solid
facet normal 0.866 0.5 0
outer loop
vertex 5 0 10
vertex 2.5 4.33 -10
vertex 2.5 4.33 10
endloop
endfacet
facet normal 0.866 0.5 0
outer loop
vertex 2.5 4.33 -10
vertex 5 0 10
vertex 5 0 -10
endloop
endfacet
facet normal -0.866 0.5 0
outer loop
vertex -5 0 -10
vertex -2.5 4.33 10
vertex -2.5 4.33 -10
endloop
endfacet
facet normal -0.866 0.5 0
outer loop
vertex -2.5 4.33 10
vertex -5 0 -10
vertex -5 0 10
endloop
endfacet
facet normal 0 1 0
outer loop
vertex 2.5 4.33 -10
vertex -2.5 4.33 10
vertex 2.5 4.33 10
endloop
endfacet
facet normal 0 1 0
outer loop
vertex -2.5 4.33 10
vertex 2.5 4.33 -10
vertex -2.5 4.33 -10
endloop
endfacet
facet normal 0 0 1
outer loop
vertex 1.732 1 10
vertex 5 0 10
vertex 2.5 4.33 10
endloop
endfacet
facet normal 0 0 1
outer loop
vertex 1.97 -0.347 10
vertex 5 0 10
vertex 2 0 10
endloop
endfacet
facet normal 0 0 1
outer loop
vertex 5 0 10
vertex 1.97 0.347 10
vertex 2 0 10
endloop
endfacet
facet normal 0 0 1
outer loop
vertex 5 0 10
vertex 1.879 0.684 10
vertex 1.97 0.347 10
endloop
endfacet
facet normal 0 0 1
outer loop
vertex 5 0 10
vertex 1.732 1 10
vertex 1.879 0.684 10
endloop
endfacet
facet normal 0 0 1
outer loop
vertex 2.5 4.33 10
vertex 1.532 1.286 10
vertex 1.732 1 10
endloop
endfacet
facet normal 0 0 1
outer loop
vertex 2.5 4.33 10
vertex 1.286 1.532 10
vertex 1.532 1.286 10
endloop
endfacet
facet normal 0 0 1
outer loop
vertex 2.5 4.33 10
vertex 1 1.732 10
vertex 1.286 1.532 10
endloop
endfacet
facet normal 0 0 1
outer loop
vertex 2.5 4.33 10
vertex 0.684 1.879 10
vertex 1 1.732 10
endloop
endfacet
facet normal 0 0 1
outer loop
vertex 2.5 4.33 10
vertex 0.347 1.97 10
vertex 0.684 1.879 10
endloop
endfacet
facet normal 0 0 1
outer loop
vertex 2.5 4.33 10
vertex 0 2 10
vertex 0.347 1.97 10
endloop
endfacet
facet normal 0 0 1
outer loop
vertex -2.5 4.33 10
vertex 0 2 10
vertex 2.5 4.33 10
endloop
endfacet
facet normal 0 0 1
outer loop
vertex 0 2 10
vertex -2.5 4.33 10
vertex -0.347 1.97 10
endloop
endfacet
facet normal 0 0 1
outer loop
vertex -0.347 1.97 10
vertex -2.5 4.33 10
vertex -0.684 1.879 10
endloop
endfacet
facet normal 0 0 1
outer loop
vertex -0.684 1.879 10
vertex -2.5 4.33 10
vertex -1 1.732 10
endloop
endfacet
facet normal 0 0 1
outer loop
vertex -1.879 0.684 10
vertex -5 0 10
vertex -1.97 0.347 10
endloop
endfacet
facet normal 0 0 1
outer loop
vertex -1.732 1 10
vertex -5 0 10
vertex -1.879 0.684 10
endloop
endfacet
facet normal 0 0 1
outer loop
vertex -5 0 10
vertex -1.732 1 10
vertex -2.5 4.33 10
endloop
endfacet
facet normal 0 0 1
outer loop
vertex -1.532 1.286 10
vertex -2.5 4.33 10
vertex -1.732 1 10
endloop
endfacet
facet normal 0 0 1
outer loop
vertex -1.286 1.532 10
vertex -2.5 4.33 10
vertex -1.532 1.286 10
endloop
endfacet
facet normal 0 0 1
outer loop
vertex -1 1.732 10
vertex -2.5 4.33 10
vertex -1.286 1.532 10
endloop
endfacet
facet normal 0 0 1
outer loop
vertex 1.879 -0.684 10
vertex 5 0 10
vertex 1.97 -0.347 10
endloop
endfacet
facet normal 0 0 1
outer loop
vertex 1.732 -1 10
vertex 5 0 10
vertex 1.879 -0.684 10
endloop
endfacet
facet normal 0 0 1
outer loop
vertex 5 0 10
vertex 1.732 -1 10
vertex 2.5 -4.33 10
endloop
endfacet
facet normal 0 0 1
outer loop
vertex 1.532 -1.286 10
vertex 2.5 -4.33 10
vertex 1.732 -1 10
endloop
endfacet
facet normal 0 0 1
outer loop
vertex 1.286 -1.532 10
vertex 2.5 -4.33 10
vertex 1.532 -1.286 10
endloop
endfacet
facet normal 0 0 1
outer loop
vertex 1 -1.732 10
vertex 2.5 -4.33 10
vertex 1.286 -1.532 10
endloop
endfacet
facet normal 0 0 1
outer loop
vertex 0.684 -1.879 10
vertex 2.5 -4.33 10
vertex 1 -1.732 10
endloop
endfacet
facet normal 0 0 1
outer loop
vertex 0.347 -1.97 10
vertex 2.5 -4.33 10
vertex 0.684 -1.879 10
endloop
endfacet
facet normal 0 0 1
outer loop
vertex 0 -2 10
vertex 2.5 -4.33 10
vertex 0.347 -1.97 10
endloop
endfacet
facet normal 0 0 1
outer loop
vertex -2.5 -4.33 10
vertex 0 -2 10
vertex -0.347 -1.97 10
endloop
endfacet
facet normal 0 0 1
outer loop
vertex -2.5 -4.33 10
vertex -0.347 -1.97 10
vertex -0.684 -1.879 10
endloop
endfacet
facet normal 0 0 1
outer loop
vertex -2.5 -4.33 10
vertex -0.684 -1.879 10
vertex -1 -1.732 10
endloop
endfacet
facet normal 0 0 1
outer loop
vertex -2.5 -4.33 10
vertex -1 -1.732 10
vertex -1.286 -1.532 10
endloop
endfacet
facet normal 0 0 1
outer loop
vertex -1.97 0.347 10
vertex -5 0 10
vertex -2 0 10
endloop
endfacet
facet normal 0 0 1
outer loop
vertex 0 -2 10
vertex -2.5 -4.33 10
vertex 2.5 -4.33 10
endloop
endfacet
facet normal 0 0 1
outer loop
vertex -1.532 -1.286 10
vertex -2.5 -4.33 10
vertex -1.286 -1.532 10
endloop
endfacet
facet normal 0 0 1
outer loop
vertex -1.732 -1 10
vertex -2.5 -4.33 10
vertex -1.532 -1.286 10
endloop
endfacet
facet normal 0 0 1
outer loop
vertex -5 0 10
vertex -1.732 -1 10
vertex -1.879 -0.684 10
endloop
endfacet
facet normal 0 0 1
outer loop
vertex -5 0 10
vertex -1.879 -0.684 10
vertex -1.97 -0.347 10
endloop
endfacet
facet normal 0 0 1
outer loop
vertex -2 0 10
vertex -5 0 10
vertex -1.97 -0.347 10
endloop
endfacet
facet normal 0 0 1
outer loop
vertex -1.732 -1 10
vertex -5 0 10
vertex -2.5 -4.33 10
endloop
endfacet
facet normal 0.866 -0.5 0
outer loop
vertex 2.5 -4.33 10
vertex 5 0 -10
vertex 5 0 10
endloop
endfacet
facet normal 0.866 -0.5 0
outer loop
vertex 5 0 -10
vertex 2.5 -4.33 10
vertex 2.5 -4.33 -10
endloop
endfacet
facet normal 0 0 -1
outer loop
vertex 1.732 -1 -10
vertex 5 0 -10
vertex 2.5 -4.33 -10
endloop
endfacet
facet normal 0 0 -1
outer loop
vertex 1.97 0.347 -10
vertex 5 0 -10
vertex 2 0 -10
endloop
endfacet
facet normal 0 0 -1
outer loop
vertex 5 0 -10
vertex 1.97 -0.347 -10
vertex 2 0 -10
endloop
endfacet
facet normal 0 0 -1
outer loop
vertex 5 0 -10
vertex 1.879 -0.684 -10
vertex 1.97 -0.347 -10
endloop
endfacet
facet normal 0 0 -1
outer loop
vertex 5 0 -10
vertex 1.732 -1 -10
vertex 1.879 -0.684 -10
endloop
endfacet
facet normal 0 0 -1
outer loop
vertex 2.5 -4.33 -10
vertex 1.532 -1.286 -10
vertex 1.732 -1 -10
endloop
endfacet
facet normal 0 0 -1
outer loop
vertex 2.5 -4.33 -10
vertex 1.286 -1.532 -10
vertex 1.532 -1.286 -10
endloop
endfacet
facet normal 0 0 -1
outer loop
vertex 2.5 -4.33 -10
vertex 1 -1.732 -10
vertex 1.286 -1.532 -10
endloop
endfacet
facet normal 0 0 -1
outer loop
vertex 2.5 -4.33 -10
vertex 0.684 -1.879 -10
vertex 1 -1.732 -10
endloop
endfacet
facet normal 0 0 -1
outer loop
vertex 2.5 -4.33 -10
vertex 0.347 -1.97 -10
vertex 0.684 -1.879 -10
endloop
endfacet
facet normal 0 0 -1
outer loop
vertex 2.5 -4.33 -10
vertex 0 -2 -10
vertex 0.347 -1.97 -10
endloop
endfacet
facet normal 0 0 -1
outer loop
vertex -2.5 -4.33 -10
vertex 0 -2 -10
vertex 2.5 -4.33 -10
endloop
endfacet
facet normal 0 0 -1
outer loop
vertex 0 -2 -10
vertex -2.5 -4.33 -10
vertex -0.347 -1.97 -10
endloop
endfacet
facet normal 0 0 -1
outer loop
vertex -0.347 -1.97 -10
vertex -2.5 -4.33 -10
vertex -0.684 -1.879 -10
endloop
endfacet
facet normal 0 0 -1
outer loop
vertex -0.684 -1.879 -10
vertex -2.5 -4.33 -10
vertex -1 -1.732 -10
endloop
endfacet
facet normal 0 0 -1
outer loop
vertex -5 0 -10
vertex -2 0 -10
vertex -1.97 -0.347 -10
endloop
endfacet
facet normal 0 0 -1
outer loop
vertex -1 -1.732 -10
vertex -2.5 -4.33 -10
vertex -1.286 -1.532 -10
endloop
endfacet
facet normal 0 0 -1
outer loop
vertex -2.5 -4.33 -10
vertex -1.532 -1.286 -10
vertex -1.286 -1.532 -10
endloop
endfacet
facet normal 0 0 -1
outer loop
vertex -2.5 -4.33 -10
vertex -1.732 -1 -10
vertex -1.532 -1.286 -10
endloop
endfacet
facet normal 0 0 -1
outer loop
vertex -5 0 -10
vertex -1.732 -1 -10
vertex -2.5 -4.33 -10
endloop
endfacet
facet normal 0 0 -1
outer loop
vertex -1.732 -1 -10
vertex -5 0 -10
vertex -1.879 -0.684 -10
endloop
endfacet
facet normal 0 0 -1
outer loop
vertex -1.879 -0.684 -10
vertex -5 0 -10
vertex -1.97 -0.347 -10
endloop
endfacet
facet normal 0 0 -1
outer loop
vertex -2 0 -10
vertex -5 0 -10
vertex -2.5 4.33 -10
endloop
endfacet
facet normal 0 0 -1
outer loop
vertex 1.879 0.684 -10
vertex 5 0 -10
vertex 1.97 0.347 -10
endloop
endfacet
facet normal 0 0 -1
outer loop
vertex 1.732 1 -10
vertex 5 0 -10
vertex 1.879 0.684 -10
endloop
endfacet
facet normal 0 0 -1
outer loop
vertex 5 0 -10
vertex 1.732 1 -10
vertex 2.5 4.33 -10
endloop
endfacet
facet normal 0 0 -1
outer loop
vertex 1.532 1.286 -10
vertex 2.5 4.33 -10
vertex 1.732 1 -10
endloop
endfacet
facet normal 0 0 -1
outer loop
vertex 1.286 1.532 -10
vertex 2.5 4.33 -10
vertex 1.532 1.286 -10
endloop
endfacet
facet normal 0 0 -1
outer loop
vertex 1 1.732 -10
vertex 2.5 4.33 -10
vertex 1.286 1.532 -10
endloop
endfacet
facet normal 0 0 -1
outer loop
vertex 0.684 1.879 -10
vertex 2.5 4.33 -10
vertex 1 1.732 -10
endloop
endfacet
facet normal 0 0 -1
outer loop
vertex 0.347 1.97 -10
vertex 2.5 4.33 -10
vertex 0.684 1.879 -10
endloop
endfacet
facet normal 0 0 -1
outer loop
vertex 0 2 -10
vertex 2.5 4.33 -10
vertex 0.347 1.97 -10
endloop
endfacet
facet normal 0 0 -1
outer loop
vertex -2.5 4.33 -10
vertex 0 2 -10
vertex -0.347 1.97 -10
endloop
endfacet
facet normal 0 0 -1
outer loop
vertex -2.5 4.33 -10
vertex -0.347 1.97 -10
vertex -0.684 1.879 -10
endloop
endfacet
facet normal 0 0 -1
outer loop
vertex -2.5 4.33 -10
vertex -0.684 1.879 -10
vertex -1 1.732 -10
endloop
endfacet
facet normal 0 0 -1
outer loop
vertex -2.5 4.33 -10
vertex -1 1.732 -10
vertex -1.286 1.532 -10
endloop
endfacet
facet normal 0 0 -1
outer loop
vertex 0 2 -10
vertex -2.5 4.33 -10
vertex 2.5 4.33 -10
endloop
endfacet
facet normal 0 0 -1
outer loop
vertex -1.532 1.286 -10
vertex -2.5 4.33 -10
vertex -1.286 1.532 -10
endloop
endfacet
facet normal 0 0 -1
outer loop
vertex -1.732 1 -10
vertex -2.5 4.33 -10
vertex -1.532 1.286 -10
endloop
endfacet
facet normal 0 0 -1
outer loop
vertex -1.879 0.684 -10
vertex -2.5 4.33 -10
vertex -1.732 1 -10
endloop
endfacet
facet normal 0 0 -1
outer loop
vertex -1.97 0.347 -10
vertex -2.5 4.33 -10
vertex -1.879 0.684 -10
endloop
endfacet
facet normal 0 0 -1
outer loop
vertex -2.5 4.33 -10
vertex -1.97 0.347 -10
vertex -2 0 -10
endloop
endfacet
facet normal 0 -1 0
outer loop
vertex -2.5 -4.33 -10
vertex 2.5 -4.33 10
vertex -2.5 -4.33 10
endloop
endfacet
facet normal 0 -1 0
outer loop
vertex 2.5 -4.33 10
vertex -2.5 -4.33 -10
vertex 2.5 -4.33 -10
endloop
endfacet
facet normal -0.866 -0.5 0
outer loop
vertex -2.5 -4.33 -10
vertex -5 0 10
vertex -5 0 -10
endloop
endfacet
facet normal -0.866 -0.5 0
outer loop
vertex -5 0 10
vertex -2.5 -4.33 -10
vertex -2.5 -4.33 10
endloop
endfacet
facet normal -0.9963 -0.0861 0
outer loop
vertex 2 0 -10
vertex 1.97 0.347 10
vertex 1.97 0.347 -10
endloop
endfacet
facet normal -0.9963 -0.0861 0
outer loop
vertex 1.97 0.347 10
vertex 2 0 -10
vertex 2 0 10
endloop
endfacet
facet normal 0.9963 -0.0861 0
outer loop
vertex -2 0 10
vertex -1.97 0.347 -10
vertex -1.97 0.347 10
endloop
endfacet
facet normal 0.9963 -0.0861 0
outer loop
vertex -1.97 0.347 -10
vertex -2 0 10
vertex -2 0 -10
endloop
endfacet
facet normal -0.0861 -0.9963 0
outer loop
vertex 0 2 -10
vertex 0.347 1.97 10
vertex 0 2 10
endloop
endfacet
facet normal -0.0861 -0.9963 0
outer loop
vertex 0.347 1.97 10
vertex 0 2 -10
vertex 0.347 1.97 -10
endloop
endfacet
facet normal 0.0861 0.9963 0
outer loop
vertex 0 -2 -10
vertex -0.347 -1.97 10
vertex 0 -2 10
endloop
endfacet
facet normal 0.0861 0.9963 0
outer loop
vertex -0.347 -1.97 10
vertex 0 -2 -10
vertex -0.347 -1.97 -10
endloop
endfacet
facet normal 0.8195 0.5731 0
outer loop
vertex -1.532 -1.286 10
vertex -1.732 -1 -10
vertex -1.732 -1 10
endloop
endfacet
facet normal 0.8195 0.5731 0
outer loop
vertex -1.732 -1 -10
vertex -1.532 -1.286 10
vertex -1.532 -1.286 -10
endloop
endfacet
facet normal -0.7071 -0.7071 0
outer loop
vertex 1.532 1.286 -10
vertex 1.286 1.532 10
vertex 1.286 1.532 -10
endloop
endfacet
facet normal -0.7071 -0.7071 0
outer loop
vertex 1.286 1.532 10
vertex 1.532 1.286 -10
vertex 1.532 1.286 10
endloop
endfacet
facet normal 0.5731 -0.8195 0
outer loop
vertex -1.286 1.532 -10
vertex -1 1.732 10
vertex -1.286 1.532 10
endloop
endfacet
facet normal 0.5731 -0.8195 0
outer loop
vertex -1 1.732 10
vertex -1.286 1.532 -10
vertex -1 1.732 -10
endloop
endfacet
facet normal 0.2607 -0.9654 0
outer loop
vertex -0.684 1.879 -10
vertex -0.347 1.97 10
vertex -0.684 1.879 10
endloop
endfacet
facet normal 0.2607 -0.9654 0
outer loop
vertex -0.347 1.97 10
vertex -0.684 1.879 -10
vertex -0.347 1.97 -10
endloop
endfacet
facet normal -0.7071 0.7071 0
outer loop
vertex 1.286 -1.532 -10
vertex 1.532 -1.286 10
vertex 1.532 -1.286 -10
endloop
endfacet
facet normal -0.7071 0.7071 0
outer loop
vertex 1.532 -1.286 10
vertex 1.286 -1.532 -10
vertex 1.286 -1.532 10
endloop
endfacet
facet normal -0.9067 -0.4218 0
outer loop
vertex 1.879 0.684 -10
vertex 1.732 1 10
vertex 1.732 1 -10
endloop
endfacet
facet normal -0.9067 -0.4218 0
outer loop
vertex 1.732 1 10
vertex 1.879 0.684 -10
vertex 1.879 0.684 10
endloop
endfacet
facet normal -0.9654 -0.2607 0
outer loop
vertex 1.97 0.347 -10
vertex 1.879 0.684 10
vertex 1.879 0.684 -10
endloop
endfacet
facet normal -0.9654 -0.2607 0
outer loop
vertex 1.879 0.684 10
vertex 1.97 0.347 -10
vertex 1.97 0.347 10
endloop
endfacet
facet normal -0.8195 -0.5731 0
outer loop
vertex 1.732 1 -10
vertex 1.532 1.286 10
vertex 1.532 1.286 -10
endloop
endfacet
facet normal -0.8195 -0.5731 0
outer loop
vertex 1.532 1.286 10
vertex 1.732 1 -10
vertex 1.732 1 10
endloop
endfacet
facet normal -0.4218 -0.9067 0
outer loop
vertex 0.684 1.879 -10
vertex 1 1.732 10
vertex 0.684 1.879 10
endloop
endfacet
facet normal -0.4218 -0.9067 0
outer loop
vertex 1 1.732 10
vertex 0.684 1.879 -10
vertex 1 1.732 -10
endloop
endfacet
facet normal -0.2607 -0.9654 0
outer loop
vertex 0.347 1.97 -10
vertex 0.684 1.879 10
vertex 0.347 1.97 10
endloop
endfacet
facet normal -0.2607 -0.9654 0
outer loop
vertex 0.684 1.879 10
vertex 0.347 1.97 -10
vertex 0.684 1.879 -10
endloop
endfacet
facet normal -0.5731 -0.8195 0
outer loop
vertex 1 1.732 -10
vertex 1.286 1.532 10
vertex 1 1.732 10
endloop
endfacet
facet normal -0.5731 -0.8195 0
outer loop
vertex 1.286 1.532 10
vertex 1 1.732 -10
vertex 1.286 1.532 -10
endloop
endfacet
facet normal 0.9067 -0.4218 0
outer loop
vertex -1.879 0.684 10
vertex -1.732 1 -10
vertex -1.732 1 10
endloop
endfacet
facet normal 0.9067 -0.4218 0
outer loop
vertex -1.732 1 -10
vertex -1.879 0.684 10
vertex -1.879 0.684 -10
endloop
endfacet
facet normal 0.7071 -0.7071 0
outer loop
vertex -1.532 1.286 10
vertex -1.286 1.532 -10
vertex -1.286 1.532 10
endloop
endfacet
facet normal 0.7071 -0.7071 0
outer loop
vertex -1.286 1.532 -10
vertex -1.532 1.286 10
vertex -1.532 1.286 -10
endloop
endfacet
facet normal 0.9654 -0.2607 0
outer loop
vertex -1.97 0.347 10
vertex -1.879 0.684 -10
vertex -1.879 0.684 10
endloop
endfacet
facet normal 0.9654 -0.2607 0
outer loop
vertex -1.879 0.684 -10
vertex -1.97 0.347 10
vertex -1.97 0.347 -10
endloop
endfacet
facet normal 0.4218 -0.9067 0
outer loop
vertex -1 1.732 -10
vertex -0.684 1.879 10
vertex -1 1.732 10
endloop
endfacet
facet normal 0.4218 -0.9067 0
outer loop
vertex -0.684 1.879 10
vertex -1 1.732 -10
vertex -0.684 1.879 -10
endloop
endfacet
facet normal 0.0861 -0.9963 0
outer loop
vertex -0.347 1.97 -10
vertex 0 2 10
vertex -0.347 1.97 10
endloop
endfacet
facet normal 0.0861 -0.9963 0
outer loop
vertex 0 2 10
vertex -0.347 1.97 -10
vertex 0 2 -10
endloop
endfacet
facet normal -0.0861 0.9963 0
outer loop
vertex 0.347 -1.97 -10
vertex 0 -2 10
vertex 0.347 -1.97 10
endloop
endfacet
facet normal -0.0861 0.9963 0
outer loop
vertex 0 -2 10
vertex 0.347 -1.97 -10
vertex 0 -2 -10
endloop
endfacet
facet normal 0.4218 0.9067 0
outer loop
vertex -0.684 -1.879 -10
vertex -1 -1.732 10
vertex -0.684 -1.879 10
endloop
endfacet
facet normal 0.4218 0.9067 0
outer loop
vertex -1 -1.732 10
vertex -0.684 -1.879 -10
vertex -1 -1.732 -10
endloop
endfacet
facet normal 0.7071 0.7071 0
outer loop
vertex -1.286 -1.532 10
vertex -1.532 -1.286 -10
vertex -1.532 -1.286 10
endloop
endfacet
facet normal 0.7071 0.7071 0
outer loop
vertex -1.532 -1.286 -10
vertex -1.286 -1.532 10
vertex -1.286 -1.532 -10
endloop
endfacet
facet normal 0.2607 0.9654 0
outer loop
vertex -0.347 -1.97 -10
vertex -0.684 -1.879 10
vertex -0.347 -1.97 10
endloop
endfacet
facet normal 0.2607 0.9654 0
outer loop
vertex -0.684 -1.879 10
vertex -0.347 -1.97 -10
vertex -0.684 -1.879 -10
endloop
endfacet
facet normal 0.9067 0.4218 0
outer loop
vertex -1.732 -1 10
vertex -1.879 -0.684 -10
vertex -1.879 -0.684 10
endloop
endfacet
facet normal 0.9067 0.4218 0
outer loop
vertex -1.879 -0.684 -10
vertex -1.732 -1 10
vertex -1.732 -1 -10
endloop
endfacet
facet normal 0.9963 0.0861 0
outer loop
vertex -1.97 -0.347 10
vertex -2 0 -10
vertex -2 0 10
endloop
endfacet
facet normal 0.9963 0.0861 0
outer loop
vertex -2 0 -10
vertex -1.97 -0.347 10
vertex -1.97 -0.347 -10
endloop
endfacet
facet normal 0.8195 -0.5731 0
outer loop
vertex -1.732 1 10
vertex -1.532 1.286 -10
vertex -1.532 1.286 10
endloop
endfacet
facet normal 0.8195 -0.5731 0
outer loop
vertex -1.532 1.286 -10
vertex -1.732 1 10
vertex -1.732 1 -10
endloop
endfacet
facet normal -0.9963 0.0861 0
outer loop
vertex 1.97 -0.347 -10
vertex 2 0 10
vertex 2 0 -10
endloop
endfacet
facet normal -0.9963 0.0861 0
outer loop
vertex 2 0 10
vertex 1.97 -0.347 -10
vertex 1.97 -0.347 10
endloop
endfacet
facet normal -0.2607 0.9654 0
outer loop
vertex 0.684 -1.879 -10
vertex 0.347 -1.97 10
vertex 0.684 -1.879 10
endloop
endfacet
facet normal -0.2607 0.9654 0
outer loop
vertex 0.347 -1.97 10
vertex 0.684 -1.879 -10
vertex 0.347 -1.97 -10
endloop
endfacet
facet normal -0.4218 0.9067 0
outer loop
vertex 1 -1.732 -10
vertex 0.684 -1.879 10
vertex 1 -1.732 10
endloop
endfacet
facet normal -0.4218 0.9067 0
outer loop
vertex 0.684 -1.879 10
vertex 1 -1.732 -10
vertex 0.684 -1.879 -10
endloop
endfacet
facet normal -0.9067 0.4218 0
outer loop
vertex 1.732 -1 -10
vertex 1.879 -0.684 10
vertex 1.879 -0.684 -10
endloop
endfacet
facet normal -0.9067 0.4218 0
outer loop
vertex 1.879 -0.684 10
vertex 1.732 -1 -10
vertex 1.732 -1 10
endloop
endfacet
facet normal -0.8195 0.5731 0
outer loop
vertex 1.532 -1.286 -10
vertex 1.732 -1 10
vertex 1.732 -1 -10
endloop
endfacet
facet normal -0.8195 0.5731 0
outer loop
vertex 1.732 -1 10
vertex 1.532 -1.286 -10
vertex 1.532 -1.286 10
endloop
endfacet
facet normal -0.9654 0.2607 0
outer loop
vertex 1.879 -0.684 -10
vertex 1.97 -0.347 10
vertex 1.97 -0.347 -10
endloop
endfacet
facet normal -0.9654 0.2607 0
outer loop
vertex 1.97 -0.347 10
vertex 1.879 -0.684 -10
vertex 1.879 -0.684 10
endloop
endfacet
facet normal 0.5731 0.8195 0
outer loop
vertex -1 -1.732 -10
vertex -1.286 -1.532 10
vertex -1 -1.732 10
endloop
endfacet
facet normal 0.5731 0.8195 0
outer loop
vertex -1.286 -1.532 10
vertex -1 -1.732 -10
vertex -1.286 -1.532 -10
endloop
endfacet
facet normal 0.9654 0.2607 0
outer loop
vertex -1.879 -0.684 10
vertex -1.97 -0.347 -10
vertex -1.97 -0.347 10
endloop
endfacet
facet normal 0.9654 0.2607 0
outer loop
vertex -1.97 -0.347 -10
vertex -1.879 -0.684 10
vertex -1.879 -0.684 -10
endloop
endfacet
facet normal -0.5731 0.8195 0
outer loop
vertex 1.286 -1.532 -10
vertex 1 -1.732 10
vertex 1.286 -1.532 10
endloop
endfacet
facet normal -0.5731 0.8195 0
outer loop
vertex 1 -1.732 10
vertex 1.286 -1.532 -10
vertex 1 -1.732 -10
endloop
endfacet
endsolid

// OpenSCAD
length = 20;

difference(){
    cylinder(r=5, h=length, center=true, $fn=6);
    cylinder(r=2, h=length+1, center=true, $fn=36);
}
